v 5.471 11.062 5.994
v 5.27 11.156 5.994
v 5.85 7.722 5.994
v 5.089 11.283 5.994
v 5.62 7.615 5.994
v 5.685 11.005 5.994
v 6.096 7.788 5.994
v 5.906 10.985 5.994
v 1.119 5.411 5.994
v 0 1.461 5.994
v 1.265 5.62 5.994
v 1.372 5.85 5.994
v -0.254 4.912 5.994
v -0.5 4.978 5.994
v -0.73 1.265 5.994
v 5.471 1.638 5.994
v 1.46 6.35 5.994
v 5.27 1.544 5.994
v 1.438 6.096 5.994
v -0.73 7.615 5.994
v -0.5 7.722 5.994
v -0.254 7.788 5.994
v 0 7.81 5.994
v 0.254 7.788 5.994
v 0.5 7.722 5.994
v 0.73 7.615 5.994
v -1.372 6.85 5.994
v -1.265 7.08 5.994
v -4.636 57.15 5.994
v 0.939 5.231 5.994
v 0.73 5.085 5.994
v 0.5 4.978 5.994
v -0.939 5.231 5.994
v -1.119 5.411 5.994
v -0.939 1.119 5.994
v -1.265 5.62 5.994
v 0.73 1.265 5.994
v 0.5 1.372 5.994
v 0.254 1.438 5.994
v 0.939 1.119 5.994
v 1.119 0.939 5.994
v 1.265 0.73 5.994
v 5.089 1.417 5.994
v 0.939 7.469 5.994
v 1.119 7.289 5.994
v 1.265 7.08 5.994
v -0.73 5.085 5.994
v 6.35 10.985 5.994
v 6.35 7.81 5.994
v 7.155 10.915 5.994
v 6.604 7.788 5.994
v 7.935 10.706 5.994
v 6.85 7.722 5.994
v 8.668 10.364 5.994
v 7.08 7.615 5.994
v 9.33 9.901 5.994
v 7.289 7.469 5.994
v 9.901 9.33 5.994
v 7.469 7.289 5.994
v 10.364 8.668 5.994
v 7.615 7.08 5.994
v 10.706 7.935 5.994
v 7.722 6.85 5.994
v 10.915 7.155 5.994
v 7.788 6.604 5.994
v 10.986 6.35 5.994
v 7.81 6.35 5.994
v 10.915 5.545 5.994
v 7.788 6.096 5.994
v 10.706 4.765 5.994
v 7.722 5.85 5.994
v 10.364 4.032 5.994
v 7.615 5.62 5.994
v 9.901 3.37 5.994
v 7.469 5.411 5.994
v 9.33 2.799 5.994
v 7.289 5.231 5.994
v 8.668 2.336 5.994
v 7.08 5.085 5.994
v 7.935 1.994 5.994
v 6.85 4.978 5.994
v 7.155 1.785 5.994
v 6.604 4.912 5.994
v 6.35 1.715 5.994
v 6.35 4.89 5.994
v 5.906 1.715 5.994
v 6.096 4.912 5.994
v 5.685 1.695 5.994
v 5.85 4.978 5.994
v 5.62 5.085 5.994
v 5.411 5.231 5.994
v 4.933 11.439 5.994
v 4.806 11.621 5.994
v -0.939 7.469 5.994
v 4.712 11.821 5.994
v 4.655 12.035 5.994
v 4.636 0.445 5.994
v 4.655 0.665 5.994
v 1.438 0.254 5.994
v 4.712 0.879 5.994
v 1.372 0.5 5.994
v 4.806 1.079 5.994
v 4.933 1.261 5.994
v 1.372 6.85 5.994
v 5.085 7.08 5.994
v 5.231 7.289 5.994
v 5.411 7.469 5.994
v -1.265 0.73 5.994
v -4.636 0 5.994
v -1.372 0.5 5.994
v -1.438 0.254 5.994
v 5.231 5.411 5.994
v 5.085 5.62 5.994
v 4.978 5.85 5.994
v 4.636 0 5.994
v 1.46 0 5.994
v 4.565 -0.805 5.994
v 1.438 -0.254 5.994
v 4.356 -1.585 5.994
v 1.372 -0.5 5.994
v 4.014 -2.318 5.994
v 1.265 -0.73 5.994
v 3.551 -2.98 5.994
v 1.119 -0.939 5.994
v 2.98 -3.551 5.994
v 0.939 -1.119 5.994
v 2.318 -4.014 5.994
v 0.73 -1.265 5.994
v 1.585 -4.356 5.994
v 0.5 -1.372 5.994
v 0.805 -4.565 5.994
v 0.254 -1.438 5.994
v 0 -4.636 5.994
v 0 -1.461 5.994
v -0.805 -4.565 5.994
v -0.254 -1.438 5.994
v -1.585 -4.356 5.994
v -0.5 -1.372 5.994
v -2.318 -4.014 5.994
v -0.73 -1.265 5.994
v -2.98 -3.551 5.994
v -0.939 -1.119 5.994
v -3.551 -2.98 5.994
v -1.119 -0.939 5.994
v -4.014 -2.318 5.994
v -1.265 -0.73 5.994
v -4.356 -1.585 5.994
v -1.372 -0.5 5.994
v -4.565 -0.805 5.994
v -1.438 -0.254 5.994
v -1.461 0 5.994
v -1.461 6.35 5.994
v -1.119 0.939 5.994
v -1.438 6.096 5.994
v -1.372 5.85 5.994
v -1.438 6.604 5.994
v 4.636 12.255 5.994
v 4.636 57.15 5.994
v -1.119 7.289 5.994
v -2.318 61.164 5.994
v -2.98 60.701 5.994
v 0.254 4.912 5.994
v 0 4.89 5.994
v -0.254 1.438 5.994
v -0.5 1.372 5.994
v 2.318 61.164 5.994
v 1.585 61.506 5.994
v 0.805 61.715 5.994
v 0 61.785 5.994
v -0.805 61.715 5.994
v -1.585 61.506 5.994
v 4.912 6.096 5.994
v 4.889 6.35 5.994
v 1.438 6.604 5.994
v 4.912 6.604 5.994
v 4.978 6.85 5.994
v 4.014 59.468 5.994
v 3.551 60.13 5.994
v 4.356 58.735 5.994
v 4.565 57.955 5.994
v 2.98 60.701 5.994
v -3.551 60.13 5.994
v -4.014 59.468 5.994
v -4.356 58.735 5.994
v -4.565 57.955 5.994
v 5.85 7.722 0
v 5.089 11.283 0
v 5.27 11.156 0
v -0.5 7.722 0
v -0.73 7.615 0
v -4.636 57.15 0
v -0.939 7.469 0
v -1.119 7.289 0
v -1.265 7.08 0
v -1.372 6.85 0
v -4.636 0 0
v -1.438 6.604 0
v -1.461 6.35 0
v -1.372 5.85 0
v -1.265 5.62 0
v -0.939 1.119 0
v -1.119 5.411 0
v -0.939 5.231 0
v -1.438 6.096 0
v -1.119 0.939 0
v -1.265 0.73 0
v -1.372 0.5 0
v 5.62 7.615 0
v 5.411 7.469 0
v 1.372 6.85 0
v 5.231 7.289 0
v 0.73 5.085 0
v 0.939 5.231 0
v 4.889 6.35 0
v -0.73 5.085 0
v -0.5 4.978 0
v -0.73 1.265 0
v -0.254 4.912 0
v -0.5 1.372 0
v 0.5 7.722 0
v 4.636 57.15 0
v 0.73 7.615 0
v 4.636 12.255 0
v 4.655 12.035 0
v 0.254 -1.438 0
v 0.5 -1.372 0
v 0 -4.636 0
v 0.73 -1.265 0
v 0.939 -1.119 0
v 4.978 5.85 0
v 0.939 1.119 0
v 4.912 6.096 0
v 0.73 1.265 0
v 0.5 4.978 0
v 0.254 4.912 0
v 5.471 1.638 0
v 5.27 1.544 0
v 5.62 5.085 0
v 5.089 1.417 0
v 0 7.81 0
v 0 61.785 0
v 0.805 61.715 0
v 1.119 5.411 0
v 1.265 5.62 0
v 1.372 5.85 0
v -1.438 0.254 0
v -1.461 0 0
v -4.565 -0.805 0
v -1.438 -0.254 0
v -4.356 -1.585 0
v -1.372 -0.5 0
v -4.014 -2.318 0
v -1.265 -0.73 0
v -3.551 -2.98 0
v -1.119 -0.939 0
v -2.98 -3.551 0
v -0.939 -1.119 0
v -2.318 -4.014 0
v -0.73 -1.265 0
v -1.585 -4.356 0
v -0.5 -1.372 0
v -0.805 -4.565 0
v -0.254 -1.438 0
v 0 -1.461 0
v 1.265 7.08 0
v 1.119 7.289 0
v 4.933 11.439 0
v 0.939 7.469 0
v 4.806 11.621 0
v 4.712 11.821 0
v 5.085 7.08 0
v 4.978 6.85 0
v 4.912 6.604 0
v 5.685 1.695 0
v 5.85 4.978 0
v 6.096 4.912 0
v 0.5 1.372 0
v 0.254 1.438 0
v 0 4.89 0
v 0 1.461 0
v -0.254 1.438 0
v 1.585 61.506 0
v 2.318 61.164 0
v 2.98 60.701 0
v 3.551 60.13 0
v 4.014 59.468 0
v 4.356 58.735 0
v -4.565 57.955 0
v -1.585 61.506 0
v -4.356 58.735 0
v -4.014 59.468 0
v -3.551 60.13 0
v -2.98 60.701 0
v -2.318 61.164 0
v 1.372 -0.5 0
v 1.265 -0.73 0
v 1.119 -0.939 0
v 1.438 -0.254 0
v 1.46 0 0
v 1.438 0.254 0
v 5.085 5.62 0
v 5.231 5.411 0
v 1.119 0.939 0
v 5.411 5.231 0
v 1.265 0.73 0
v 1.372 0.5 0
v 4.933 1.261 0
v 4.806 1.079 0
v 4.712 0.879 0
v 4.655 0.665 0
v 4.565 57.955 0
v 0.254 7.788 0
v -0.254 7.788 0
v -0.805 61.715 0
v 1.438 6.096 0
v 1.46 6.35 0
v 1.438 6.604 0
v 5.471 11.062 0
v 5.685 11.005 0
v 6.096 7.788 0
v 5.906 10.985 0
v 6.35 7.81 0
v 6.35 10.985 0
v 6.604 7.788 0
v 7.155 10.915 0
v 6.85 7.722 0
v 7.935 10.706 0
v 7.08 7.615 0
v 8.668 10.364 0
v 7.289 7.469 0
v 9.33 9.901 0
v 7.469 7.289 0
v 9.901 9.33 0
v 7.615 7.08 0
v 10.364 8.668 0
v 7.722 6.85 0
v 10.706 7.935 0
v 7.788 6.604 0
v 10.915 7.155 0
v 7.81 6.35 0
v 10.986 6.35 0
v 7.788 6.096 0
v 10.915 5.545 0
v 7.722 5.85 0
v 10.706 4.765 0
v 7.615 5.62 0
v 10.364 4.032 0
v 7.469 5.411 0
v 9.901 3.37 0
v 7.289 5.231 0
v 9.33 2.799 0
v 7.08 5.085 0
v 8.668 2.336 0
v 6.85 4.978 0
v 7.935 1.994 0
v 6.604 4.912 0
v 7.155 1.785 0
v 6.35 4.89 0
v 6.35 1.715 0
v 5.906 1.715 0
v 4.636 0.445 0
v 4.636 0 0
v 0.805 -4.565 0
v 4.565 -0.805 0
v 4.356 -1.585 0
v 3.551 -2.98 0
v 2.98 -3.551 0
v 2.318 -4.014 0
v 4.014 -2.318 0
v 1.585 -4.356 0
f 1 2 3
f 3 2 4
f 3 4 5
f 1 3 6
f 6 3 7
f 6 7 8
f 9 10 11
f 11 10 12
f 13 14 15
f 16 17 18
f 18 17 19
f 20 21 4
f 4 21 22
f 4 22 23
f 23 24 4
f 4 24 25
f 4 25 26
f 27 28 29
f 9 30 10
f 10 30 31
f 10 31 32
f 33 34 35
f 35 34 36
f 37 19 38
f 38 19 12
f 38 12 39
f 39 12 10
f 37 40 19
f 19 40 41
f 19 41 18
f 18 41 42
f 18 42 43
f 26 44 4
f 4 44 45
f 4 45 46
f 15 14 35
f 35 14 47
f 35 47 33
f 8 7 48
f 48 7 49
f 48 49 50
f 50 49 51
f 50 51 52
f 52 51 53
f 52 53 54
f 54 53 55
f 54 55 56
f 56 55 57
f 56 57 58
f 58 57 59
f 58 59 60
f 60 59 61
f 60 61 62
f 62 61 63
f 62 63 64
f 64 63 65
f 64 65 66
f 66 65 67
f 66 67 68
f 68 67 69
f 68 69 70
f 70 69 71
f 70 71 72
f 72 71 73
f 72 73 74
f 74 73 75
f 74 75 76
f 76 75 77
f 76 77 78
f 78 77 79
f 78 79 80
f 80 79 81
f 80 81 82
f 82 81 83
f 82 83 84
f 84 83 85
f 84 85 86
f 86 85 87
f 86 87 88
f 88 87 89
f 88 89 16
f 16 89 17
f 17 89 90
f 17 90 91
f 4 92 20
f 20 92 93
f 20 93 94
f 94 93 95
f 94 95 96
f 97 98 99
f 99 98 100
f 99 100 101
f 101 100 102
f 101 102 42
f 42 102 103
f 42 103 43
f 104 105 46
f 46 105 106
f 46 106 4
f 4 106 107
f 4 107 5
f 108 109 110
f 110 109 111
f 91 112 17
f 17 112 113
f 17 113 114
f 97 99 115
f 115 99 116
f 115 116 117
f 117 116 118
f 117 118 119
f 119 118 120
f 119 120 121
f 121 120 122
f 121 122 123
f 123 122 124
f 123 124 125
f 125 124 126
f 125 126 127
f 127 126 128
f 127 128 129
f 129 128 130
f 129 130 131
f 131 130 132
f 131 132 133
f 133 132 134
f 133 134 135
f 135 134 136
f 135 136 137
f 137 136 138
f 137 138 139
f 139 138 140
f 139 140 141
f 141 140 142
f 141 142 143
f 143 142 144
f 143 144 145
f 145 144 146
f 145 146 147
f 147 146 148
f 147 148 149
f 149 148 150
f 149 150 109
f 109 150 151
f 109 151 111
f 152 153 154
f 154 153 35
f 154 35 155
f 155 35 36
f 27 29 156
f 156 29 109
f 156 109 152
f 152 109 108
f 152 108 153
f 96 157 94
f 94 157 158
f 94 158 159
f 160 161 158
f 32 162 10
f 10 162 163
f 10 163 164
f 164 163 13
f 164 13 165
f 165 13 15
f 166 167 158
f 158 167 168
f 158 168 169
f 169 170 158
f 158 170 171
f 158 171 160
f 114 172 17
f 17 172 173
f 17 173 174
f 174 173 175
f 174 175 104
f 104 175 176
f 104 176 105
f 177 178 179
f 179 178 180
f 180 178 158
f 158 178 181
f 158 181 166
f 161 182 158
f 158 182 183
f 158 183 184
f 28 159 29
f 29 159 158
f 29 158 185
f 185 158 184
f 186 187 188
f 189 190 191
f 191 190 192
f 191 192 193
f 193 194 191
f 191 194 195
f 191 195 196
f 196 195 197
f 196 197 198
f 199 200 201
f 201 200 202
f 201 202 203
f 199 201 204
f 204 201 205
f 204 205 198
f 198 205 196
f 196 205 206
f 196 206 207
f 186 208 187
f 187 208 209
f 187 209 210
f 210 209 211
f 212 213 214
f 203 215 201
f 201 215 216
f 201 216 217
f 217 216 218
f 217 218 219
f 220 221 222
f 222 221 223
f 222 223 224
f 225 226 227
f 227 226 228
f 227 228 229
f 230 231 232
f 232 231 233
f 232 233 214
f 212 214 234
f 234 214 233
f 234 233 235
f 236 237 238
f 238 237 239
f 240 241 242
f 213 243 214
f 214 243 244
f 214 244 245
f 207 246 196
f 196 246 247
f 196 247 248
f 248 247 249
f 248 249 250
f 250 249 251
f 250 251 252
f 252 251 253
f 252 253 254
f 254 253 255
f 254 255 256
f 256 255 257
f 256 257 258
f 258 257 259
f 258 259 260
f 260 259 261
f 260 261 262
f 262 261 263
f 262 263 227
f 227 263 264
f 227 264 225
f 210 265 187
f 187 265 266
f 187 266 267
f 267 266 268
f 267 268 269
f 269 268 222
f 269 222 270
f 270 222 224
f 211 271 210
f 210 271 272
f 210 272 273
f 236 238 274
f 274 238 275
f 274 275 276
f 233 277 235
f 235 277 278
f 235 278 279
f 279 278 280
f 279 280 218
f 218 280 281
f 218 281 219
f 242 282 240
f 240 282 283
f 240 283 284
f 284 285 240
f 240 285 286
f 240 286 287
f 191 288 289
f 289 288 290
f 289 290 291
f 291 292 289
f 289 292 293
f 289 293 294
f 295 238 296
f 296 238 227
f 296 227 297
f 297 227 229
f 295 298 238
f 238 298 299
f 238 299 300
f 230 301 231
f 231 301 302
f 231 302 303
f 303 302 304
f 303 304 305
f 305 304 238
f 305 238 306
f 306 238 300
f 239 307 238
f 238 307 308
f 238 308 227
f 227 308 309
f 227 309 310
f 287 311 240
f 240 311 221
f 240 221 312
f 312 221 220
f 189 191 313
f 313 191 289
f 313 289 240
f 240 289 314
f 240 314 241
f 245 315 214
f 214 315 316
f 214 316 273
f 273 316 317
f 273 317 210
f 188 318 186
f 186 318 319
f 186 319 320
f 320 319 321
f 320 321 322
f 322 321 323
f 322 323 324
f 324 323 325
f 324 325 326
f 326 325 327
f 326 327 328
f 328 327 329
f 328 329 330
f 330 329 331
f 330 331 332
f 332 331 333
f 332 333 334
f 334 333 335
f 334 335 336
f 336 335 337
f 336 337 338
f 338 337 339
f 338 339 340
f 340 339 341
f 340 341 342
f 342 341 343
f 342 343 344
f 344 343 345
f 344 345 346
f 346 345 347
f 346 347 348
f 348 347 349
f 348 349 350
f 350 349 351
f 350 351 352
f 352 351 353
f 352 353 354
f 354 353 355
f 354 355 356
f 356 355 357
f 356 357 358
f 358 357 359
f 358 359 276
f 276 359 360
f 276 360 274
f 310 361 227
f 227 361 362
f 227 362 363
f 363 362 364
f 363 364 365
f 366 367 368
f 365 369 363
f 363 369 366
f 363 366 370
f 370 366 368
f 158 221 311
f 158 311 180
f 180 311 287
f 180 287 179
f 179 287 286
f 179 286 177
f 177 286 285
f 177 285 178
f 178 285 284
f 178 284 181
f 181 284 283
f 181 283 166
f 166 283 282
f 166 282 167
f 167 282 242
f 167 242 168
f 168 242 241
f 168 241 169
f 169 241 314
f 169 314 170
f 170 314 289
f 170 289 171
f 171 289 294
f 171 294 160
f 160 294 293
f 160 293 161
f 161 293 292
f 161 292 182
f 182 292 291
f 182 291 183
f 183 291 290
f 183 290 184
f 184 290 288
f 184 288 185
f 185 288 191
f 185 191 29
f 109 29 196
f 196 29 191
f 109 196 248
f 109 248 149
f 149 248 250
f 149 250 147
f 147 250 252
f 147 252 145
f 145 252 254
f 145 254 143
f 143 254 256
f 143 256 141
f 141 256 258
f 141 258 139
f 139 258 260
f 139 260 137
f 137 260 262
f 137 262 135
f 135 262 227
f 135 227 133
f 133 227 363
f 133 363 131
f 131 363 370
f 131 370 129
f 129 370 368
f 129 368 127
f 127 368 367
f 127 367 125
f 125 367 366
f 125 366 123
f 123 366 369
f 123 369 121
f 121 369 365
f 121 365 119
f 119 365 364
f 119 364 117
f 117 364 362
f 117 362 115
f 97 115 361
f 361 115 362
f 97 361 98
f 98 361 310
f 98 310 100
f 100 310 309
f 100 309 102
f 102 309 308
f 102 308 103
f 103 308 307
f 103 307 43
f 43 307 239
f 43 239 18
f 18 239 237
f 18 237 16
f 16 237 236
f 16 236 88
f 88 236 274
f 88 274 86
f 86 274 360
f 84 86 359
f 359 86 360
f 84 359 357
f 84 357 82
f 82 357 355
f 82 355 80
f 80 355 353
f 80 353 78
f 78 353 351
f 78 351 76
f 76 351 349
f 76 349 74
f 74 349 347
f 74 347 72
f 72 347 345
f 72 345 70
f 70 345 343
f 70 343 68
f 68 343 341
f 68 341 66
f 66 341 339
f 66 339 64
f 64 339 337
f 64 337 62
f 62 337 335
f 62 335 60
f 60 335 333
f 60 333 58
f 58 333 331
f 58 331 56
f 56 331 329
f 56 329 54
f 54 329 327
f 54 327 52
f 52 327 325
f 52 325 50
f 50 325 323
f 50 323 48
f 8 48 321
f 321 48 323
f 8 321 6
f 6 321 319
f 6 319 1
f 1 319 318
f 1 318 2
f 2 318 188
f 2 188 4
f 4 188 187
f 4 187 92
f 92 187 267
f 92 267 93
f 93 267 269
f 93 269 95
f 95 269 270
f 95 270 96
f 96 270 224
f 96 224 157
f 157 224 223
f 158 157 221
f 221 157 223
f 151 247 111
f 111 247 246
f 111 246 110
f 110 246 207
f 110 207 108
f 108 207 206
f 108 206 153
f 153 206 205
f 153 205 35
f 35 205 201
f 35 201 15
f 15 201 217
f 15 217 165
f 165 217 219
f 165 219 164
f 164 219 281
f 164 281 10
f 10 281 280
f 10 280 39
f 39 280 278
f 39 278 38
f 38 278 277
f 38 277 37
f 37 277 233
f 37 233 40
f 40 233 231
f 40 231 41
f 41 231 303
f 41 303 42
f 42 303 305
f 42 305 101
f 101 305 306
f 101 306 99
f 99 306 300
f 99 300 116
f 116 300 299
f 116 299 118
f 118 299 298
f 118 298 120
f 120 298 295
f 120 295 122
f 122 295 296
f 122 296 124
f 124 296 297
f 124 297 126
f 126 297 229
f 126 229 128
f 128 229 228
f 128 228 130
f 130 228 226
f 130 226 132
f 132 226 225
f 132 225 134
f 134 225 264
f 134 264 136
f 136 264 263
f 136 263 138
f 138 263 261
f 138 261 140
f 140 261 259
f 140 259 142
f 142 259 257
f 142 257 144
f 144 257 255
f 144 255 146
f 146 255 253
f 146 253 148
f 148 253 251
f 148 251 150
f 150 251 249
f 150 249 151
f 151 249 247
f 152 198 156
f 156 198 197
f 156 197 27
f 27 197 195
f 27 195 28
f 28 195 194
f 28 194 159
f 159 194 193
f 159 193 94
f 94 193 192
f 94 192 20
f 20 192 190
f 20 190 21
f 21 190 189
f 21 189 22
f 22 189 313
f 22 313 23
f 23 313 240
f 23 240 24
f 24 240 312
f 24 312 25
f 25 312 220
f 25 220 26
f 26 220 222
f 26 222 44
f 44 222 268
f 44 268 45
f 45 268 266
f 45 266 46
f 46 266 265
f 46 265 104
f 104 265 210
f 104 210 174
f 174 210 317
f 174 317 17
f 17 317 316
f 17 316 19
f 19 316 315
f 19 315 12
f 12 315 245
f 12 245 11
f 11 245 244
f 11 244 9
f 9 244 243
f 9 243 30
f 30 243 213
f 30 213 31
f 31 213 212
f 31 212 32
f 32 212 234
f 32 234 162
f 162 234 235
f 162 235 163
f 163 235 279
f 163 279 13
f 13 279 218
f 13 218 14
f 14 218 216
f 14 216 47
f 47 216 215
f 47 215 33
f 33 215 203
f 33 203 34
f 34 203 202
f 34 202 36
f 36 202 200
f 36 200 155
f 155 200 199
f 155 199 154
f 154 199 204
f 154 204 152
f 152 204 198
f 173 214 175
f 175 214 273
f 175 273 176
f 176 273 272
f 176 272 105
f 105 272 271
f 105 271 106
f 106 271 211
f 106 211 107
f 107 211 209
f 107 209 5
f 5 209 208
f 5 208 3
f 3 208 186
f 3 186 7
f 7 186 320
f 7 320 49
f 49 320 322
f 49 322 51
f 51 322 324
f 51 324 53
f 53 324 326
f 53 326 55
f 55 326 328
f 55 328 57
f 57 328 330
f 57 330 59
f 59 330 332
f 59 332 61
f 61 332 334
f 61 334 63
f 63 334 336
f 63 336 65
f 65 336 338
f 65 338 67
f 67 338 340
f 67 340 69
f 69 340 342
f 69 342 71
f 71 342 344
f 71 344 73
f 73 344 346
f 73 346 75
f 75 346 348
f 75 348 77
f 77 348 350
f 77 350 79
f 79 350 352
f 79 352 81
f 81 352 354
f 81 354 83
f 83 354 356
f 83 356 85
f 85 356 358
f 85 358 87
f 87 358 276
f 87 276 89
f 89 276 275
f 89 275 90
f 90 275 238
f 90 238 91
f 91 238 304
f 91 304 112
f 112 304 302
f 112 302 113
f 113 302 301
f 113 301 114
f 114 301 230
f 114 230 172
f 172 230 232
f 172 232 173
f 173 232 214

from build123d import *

# Parameters (mm, degrees)
SKETCH1_R           = 1.4605
BOSS_EXTRUDE1_DEPTH = 5.9944


with BuildPart() as part:
    # Sketch1 → Boss-Extrude1 (new body)
    with BuildSketch(Plane.XY):
        with BuildLine():
            Line((4.6355, 0), (4.6355, 0.4445))
            ThreePointArc((4.6355, 0.4445), (5.007474388, 1.342525612), (5.9055, 1.7145))
            Line((5.9055, 1.7145), (6.35, 1.7145))
            ThreePointArc((6.35, 1.7145), (10.9855, 6.35), (6.35, 10.9855))
            Line((6.35, 10.9855), (5.9055, 10.9855))
            ThreePointArc((5.9055, 10.9855), (5.007474388, 11.357474388), (4.6355, 12.2555))
            Line((4.6355, 12.2555), (4.6355, 57.15))
            ThreePointArc((4.6355, 57.15), (0, 61.7855), (-4.6355, 57.15))
            Line((-4.6355, 57.15), (-4.6355, 0))
            ThreePointArc((-4.6355, 0), (0, -4.6355), (4.6355, 0))
        make_face()
        Circle(SKETCH1_R, mode=Mode.SUBTRACT)
        with Locations((0, 6.35)):
            Circle(SKETCH1_R, mode=Mode.SUBTRACT)
        with Locations((6.35, 6.35)):
            Circle(SKETCH1_R, mode=Mode.SUBTRACT)
    extrude(amount=BOSS_EXTRUDE1_DEPTH)


solid = part.part
